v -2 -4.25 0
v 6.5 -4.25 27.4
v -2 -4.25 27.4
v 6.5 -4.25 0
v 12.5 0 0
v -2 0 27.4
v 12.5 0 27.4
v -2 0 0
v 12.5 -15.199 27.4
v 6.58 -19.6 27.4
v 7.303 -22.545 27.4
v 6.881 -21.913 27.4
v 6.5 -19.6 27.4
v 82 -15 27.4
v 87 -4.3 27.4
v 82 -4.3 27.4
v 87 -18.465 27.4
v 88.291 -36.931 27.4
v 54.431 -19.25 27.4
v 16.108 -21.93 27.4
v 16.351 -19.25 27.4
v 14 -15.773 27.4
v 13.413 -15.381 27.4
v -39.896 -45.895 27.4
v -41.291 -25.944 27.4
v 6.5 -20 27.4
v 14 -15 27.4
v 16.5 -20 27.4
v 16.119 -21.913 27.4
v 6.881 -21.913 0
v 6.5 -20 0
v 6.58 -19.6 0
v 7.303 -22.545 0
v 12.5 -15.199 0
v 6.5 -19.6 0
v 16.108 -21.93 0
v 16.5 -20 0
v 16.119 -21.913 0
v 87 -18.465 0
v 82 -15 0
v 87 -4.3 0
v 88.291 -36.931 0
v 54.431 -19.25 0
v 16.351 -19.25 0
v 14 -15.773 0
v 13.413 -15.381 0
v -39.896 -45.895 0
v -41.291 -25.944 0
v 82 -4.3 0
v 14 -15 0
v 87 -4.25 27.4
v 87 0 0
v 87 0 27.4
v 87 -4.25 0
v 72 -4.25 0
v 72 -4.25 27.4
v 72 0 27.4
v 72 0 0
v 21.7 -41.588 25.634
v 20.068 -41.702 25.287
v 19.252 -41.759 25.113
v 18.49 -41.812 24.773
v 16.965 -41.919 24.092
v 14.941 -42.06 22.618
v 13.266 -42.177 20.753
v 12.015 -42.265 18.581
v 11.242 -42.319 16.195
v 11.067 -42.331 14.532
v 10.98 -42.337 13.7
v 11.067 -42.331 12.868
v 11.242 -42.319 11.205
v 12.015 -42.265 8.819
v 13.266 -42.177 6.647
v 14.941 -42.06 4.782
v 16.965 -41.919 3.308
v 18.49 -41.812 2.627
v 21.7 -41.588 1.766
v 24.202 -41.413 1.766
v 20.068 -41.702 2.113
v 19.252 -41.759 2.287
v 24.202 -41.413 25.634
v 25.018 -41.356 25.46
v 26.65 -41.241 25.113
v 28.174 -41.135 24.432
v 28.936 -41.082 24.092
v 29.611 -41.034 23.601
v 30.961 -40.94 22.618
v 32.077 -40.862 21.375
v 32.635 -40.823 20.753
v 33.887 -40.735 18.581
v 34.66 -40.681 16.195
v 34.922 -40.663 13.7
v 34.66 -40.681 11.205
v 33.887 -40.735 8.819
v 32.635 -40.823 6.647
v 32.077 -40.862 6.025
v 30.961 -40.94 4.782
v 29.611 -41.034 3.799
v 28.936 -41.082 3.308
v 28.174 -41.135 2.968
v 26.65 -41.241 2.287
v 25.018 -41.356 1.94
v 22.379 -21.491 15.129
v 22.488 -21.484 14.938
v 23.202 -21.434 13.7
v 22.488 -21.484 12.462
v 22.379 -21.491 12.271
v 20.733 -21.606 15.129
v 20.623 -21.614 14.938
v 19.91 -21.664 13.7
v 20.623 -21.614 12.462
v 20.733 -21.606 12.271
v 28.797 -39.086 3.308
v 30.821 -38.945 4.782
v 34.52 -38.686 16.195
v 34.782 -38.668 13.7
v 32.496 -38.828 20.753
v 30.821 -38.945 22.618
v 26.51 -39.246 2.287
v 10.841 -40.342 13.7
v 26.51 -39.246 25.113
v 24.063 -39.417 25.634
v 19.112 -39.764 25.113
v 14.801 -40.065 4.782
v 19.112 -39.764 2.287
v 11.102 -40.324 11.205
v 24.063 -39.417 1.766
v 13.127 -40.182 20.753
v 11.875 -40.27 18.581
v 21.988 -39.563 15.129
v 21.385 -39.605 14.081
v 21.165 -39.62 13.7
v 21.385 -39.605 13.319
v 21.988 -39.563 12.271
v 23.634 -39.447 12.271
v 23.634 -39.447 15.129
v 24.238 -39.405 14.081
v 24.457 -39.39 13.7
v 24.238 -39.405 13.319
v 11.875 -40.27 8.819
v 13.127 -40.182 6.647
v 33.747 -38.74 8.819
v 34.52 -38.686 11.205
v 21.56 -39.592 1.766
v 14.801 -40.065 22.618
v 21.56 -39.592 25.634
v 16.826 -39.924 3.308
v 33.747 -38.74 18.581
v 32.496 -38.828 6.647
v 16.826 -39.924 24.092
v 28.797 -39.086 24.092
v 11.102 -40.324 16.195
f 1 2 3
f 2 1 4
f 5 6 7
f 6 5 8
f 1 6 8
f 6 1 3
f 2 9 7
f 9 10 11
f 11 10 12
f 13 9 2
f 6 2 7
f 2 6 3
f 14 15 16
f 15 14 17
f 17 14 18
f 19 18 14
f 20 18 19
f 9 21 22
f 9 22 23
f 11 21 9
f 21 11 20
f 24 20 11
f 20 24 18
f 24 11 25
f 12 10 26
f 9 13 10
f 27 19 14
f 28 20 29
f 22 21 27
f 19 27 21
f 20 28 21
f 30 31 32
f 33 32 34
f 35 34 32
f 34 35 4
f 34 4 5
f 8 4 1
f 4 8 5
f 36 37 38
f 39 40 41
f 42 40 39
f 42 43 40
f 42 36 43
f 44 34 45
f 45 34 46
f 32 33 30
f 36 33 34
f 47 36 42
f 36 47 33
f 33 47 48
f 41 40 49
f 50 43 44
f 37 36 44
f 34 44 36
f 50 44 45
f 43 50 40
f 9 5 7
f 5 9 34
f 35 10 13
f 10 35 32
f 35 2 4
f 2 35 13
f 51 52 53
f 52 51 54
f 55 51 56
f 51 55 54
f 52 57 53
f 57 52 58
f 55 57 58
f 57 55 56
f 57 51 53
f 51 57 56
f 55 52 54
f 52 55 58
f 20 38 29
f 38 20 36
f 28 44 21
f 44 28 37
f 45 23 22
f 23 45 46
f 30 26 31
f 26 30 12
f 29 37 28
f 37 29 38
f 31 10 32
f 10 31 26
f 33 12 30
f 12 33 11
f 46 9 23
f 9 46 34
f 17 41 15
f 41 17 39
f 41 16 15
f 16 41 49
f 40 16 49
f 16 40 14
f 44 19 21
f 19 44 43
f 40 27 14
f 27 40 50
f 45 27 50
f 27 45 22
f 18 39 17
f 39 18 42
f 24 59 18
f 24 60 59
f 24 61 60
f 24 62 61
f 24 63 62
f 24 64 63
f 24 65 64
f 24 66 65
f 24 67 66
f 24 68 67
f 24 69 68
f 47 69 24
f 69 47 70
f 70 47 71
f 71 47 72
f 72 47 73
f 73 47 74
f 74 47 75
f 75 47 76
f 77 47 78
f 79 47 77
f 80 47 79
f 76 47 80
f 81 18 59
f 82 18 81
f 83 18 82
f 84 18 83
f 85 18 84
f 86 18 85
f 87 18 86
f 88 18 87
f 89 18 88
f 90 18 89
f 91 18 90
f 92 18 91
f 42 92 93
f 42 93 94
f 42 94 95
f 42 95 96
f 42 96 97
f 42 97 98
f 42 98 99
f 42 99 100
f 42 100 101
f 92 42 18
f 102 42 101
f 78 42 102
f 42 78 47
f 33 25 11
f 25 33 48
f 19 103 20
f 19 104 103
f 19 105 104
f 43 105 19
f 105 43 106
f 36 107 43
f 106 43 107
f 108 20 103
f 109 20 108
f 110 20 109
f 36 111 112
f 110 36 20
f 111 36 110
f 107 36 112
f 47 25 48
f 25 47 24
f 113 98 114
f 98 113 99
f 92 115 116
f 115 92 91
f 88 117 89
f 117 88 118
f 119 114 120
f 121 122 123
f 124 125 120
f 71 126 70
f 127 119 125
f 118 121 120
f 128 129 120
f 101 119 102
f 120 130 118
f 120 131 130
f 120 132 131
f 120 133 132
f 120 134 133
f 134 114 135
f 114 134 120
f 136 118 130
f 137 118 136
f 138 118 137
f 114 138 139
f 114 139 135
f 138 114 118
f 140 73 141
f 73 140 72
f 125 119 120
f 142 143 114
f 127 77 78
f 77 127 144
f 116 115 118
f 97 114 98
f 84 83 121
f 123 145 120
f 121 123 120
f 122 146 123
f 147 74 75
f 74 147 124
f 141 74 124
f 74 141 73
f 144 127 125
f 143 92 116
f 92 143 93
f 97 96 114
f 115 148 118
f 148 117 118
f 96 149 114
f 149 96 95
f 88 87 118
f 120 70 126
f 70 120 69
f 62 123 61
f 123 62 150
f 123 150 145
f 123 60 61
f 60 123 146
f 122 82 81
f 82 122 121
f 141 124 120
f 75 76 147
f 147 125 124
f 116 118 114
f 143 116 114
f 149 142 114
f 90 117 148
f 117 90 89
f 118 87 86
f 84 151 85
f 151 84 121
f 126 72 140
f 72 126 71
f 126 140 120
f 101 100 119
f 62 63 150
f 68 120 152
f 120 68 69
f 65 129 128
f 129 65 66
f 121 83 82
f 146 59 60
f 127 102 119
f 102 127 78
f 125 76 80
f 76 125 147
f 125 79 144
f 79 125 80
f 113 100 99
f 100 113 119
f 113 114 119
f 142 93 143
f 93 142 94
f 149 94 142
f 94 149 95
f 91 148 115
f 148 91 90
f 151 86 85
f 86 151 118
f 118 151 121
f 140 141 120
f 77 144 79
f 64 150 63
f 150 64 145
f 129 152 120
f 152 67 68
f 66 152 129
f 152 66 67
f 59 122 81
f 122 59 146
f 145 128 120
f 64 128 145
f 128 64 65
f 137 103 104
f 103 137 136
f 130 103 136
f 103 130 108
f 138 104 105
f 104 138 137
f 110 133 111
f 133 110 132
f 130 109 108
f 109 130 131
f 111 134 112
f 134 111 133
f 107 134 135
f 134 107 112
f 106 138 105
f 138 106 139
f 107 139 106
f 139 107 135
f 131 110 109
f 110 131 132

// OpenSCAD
// file: gearmount.scad
module halfcylinder(r,h)
{
    difference(){
       cylinder(r=r,h=h);
       translate([0,0-r,0-.5]) cube([r*2+1,r*2+1,h+1]);
    } 
}

module thirdcylinder(r,h)
{
    difference(){
       cylinder(r=r*2,h=h);
       translate([0-r/1.5,0-2*r,0-.5]) cube([r*4+1,r*4+1,h+1]);
    } 
}
module gearmount(thewidth)
{
    translate([-2,0,0])   cube([14,thewidth,4.25]);
    translate([8-1.5,0,0])  cube([6,thewidth,19.6]);
    
    translate([72,0,0])  cube([15,thewidth,4.25]);
    translate([13-1.5,0,20]) rotate([-90,0,0]) cylinder(r=5,h=thewidth); 
   
    translate([82,0,20]) rotate([-90,0,0]) cylinder(r=5,h=thewidth); 
     
    translate([82,0,4.3])  cube([5,thewidth,15.6]);
   
    translate([14,0,15]) cube([69,thewidth,4.25]);
    
}


module batterysupport(xwidth)
{
       
         rotate([0,90,0]) translate([-128,-32+xwidth/2,15]) cube([64,64,5]);
         rotate([0,90,0]) translate([-68,xwidth/2,15]) cylinder(r=32,h=5);
       
    
}

module battery_plate(xwidth)
{
    difference(){
        batterysupport(xwidth);
        rotate([0,0,0]) translate([0,0,90]) scale([1.02,1.02,1.02]) battery_stud(xwidth);
        //rotate([0,90,-90]) translate([40,10,-8]) cube([xwidth,xwidth,10]);
    }
        
}

module saw_battery_plate(xwidth)
{
    difference(){
        batterysupport(xwidth);
        rotate([180,0,0]) translate([0,0-25,-42]) scale([1.02,1.02,1.02]) battery_stud(xwidth);
        //rotate([0,90,-90]) translate([40,10,-8]) cube([xwidth,xwidth,10]);
    }
        
}

module battery_stud_body(thewidth)
{
   offset = (thewidth / 2 ) - 7.75;
  // %rotate([0,90,0]) translate([0,0,10]) cube([35.85,thewidth,50]);
   rotate([0,90,0]) translate([4,0,10]) cube([thewidth-7,thewidth,50]);
   rotate([0,90,0]) translate([-14,0,9]) cube([85,thewidth,5]);
   rotate([0,90,0]) translate([22,thewidth/2,10]) cylinder(r=thewidth/2,h=50);    
}

module battery_stud(thewidth)
{
   difference(){
     battery_stud_body(thewidth);
     rotate([0,90,0]) translate([-9,4,16]) rotate([0,0,-45]) cube([thewidth-4,10,51]);
     rotate([0,90,0]) translate([-9+thewidth-8,thewidth+15,16]) rotate([0,0, 180+45]) cube([thewidth-6,10,51]);
    rotate([0,90,0]) translate([17.25,thewidth/2,40]) scale([2.0,4.0,4.0]) sphere(r=5.0);   
   }
}   
   
module brace(thewidth)
{   hull(){
      translate([-50,0,-10]) cube([thewidth/2,thewidth,2]);
      rotate([0,90,0]) translate([-90,0,10]) cube([thewidth,thewidth,2]);
       }
      hull(){
       translate([-18,0,25]) cube([thewidth/2,thewidth,2]);   
       rotate([0,90,0]) translate([-32,0,10]) cube([thewidth/2,thewidth,2]);
      }
}


module Ushape(ur1, ur2 ,uh) {

    // Circle resolution
    cRes = 30;
    // Extrusion resolution
    eRes = 50;

    union(){
        // The rounded part
        rotate_extrude(angle=180, convexity=10, $fn=eRes)
               translate([ur2, 0]) circle(ur1, $fn=cRes);

        // U extensions
        rotate([90,0,0]) linear_extrude(height=uh,$fn=eRes)
               translate([ur2, 0]) circle(ur1, $fn=cRes);
        rotate([90,0,0]) linear_extrude(height=uh,$fn=eRes)
               translate([-ur2, 0]) circle(ur1, $fn=cRes);
    }

}


module dewalt_you(xwidth)
{
    rotate([0,90,0]) translate([0-xwidth+25/2,-45,50]) Ushape(5,(xwidth+10+2)/2,40);
    hull(){
       translate([55,-20,-5]) cylinder(r=5,h=xwidth+20);
       translate([45,-20,-5]) cylinder(r=5,h=xwidth+20);     
       translate([50,-20,-5]) cylinder(r=5,h=xwidth+20);  
       translate([50,-30,-5]) cylinder(r=5,h=xwidth+20);  
      }    
    
}

module dewalt_upper(xwidth)
{
        translate([-23.5,0,0]) dewalt_you(xwidth);
        translate([ 23+.6,0,0]) dewalt_you(xwidth);
        rotate([180,0,0]) translate([xwidth+15,125-1,-48+1.8]) Ushape(5,(xwidth+10+2)/2,40);
        rotate([180,0,0]) translate([xwidth+15,125-1,1]) Ushape(5,(xwidth+10+2)/2,40);
}

module dewalt_base(xwidth)
{
    rotate([90,0,0]) translate([0,-5,0])gearmount(xwidth+20);
    rotate([90,0,0]) translate([15-5,-5,15+4.5]) cube([90,xwidth+20,18]);
}

module dewalt_lower(xwidth)
{
    difference(){
          dewalt_base(xwidth);
          translate([2,-5-1,0]) scale([1.02,1.02,1.02]) dewalt_upper(xwidth);
      }
}

module dewalt_holder(xwidth)
{   
      dewalt_lower(xwidth);
      %translate([2,-5-1,0]) dewalt_upper(xwidth);
      rotate([-90,0,0]) translate([120,20,-50]) dewalt_upper(xwidth);
      
}
module sander_holder()
{
    xwidth = 27.5;
    rotate([90,0,0]) gearmount(xwidth);
    rotate([90,0,0]) translate([0,0,90]) battery_stud(xwidth);
    rotate([90,0,0]) translate([0,0,0]) brace(xwidth);
    %rotate([90,0,0]) translate([-1,0,0]) battery_plate(xwidth);
    rotate([0,90,0]) translate([-20,40,-50]) battery_plate(xwidth);
}

module saw_holder()
{
    xwidth = 27.5;
    rotate([90,180,0]) translate([-100,0-xwidth,0]) gearmount(xwidth);
    difference(){
       rotate([90,0,-90]) translate([10+30,0,-50]) battery_stud(xwidth);
       rotate([90,0,0]) translate([12+75,-1,18.25+30]) cube([35,xwidth+2,6.5]);
       }
    rotate([90,0,0]) translate([12,0,19.25]) cube([75,xwidth,6+30]);
    //rotate([90,0,0]) translate([0,0,0]) brace(xwidth);
    %rotate([90,0,-90]) translate([10+30,0-(xwidth/2)+16,-140]) battery_plate(xwidth);
    rotate([0,90,0]) translate([-20,40,-50]) battery_plate(xwidth);
}

module dewalt_charger_holder()
{
    xwidth = 27.4;
    rotate([90,0,0]) gearmount(xwidth);
    difference(){
      rotate([90,0,4]) translate([7-50,0,23]) cube([125,xwidth,20]);
      rotate([90,0,4]) translate([60,xwidth/2,41]) cylinder(r=12,h=3);
      rotate([90,0,4]) translate([60,xwidth/2,19]) cylinder(r=1.65,h=30);
      }
}

module milwaukee_charger_holder()
{
    xwidth = 27.4;
    rotate([90,0,0]) gearmount(xwidth);
    difference(){
      rotate([90,0,4]) translate([7-75,0,23]) cube([150,xwidth,20]);
      rotate([90,0,4]) translate([60,xwidth/2,41]) cylinder(r=12,h=3);
      rotate([90,0,4]) translate([60,xwidth/2,19]) cylinder(r=1.65,h=30);
      rotate([90,0,4]) translate([60-103.5,xwidth/2,41]) cylinder(r=12,h=3);  
      rotate([90,0,4]) translate([60-103.5,xwidth/2,19]) cylinder(r=1.65,h=60);
      rotate([0,0,0])  translate([72,-30+3,-5]) cylinder(r=6*1.02,h=50);  
      rotate([0,0,0])  translate([8,-34.5+3,-5]) cylinder(r=6*1.02,h=50);  
      rotate([0,0,0])  translate([-54,-38.5+3,-5]) cylinder(r=6*1.02,h=50);   
      }
}

module milwaukee_charger_rod()
{
    
    cylinder(r=6,h=150);
}

module kobalt_charger_holder()
{
    xwidth = 27.4;
    rotate([90,0,0]) gearmount(xwidth);
    difference(){
      rotate([90,0,4]) translate([7-85,0,23]) cube([160,xwidth,20]);
      rotate([90,0,4]) translate([60,xwidth/2,41]) cylinder(r=12,h=3);
      rotate([90,0,4]) translate([60,xwidth/2,19]) cylinder(r=1.65,h=30);
      rotate([90,0,4]) translate([60-113.5,xwidth/2,41]) cylinder(r=12,h=3);  
      rotate([90,0,4]) translate([60-113.5,xwidth/2,19]) cylinder(r=1.65,h=60);
      rotate([0,0,0])  translate([72,-30+3,-5]) cylinder(r=6*1.02,h=50);  
      rotate([0,0,0])  translate([8-8,-34.5+3,-5]) cylinder(r=6*1.02,h=50);  
      rotate([0,0,0])  translate([-62,-38.5+3,-5]) cylinder(r=6*1.02,h=50);   
      }
}

//battery_stud(27.4);
//saw_holder();
//sander_holder();
//dewalt_holder(35);
//dewalt_lower(35);
//gearmount(15.7);
//dewalt_charger_holder();
//milwaukee_charger_holder();
//milwaukee_charger_rod();
//kobalt_charger_holder();
// main file
include <gearmount.scad>;


module switch_holder()
{
    xwidth = 27.4;
    rotate([90,0,0]) gearmount(xwidth);
    difference(){
      rotate([90,0,4]) translate([7-50,0,23]) cube([128.5,xwidth,20]);
      rotate([90,0,4]) translate([20,xwidth/2,41]) cylinder(r=12,h=3);
      rotate([90,0,4]) translate([20,xwidth/2,19]) cylinder(r=1.65,h=30);
      }
}
switch_holder();
